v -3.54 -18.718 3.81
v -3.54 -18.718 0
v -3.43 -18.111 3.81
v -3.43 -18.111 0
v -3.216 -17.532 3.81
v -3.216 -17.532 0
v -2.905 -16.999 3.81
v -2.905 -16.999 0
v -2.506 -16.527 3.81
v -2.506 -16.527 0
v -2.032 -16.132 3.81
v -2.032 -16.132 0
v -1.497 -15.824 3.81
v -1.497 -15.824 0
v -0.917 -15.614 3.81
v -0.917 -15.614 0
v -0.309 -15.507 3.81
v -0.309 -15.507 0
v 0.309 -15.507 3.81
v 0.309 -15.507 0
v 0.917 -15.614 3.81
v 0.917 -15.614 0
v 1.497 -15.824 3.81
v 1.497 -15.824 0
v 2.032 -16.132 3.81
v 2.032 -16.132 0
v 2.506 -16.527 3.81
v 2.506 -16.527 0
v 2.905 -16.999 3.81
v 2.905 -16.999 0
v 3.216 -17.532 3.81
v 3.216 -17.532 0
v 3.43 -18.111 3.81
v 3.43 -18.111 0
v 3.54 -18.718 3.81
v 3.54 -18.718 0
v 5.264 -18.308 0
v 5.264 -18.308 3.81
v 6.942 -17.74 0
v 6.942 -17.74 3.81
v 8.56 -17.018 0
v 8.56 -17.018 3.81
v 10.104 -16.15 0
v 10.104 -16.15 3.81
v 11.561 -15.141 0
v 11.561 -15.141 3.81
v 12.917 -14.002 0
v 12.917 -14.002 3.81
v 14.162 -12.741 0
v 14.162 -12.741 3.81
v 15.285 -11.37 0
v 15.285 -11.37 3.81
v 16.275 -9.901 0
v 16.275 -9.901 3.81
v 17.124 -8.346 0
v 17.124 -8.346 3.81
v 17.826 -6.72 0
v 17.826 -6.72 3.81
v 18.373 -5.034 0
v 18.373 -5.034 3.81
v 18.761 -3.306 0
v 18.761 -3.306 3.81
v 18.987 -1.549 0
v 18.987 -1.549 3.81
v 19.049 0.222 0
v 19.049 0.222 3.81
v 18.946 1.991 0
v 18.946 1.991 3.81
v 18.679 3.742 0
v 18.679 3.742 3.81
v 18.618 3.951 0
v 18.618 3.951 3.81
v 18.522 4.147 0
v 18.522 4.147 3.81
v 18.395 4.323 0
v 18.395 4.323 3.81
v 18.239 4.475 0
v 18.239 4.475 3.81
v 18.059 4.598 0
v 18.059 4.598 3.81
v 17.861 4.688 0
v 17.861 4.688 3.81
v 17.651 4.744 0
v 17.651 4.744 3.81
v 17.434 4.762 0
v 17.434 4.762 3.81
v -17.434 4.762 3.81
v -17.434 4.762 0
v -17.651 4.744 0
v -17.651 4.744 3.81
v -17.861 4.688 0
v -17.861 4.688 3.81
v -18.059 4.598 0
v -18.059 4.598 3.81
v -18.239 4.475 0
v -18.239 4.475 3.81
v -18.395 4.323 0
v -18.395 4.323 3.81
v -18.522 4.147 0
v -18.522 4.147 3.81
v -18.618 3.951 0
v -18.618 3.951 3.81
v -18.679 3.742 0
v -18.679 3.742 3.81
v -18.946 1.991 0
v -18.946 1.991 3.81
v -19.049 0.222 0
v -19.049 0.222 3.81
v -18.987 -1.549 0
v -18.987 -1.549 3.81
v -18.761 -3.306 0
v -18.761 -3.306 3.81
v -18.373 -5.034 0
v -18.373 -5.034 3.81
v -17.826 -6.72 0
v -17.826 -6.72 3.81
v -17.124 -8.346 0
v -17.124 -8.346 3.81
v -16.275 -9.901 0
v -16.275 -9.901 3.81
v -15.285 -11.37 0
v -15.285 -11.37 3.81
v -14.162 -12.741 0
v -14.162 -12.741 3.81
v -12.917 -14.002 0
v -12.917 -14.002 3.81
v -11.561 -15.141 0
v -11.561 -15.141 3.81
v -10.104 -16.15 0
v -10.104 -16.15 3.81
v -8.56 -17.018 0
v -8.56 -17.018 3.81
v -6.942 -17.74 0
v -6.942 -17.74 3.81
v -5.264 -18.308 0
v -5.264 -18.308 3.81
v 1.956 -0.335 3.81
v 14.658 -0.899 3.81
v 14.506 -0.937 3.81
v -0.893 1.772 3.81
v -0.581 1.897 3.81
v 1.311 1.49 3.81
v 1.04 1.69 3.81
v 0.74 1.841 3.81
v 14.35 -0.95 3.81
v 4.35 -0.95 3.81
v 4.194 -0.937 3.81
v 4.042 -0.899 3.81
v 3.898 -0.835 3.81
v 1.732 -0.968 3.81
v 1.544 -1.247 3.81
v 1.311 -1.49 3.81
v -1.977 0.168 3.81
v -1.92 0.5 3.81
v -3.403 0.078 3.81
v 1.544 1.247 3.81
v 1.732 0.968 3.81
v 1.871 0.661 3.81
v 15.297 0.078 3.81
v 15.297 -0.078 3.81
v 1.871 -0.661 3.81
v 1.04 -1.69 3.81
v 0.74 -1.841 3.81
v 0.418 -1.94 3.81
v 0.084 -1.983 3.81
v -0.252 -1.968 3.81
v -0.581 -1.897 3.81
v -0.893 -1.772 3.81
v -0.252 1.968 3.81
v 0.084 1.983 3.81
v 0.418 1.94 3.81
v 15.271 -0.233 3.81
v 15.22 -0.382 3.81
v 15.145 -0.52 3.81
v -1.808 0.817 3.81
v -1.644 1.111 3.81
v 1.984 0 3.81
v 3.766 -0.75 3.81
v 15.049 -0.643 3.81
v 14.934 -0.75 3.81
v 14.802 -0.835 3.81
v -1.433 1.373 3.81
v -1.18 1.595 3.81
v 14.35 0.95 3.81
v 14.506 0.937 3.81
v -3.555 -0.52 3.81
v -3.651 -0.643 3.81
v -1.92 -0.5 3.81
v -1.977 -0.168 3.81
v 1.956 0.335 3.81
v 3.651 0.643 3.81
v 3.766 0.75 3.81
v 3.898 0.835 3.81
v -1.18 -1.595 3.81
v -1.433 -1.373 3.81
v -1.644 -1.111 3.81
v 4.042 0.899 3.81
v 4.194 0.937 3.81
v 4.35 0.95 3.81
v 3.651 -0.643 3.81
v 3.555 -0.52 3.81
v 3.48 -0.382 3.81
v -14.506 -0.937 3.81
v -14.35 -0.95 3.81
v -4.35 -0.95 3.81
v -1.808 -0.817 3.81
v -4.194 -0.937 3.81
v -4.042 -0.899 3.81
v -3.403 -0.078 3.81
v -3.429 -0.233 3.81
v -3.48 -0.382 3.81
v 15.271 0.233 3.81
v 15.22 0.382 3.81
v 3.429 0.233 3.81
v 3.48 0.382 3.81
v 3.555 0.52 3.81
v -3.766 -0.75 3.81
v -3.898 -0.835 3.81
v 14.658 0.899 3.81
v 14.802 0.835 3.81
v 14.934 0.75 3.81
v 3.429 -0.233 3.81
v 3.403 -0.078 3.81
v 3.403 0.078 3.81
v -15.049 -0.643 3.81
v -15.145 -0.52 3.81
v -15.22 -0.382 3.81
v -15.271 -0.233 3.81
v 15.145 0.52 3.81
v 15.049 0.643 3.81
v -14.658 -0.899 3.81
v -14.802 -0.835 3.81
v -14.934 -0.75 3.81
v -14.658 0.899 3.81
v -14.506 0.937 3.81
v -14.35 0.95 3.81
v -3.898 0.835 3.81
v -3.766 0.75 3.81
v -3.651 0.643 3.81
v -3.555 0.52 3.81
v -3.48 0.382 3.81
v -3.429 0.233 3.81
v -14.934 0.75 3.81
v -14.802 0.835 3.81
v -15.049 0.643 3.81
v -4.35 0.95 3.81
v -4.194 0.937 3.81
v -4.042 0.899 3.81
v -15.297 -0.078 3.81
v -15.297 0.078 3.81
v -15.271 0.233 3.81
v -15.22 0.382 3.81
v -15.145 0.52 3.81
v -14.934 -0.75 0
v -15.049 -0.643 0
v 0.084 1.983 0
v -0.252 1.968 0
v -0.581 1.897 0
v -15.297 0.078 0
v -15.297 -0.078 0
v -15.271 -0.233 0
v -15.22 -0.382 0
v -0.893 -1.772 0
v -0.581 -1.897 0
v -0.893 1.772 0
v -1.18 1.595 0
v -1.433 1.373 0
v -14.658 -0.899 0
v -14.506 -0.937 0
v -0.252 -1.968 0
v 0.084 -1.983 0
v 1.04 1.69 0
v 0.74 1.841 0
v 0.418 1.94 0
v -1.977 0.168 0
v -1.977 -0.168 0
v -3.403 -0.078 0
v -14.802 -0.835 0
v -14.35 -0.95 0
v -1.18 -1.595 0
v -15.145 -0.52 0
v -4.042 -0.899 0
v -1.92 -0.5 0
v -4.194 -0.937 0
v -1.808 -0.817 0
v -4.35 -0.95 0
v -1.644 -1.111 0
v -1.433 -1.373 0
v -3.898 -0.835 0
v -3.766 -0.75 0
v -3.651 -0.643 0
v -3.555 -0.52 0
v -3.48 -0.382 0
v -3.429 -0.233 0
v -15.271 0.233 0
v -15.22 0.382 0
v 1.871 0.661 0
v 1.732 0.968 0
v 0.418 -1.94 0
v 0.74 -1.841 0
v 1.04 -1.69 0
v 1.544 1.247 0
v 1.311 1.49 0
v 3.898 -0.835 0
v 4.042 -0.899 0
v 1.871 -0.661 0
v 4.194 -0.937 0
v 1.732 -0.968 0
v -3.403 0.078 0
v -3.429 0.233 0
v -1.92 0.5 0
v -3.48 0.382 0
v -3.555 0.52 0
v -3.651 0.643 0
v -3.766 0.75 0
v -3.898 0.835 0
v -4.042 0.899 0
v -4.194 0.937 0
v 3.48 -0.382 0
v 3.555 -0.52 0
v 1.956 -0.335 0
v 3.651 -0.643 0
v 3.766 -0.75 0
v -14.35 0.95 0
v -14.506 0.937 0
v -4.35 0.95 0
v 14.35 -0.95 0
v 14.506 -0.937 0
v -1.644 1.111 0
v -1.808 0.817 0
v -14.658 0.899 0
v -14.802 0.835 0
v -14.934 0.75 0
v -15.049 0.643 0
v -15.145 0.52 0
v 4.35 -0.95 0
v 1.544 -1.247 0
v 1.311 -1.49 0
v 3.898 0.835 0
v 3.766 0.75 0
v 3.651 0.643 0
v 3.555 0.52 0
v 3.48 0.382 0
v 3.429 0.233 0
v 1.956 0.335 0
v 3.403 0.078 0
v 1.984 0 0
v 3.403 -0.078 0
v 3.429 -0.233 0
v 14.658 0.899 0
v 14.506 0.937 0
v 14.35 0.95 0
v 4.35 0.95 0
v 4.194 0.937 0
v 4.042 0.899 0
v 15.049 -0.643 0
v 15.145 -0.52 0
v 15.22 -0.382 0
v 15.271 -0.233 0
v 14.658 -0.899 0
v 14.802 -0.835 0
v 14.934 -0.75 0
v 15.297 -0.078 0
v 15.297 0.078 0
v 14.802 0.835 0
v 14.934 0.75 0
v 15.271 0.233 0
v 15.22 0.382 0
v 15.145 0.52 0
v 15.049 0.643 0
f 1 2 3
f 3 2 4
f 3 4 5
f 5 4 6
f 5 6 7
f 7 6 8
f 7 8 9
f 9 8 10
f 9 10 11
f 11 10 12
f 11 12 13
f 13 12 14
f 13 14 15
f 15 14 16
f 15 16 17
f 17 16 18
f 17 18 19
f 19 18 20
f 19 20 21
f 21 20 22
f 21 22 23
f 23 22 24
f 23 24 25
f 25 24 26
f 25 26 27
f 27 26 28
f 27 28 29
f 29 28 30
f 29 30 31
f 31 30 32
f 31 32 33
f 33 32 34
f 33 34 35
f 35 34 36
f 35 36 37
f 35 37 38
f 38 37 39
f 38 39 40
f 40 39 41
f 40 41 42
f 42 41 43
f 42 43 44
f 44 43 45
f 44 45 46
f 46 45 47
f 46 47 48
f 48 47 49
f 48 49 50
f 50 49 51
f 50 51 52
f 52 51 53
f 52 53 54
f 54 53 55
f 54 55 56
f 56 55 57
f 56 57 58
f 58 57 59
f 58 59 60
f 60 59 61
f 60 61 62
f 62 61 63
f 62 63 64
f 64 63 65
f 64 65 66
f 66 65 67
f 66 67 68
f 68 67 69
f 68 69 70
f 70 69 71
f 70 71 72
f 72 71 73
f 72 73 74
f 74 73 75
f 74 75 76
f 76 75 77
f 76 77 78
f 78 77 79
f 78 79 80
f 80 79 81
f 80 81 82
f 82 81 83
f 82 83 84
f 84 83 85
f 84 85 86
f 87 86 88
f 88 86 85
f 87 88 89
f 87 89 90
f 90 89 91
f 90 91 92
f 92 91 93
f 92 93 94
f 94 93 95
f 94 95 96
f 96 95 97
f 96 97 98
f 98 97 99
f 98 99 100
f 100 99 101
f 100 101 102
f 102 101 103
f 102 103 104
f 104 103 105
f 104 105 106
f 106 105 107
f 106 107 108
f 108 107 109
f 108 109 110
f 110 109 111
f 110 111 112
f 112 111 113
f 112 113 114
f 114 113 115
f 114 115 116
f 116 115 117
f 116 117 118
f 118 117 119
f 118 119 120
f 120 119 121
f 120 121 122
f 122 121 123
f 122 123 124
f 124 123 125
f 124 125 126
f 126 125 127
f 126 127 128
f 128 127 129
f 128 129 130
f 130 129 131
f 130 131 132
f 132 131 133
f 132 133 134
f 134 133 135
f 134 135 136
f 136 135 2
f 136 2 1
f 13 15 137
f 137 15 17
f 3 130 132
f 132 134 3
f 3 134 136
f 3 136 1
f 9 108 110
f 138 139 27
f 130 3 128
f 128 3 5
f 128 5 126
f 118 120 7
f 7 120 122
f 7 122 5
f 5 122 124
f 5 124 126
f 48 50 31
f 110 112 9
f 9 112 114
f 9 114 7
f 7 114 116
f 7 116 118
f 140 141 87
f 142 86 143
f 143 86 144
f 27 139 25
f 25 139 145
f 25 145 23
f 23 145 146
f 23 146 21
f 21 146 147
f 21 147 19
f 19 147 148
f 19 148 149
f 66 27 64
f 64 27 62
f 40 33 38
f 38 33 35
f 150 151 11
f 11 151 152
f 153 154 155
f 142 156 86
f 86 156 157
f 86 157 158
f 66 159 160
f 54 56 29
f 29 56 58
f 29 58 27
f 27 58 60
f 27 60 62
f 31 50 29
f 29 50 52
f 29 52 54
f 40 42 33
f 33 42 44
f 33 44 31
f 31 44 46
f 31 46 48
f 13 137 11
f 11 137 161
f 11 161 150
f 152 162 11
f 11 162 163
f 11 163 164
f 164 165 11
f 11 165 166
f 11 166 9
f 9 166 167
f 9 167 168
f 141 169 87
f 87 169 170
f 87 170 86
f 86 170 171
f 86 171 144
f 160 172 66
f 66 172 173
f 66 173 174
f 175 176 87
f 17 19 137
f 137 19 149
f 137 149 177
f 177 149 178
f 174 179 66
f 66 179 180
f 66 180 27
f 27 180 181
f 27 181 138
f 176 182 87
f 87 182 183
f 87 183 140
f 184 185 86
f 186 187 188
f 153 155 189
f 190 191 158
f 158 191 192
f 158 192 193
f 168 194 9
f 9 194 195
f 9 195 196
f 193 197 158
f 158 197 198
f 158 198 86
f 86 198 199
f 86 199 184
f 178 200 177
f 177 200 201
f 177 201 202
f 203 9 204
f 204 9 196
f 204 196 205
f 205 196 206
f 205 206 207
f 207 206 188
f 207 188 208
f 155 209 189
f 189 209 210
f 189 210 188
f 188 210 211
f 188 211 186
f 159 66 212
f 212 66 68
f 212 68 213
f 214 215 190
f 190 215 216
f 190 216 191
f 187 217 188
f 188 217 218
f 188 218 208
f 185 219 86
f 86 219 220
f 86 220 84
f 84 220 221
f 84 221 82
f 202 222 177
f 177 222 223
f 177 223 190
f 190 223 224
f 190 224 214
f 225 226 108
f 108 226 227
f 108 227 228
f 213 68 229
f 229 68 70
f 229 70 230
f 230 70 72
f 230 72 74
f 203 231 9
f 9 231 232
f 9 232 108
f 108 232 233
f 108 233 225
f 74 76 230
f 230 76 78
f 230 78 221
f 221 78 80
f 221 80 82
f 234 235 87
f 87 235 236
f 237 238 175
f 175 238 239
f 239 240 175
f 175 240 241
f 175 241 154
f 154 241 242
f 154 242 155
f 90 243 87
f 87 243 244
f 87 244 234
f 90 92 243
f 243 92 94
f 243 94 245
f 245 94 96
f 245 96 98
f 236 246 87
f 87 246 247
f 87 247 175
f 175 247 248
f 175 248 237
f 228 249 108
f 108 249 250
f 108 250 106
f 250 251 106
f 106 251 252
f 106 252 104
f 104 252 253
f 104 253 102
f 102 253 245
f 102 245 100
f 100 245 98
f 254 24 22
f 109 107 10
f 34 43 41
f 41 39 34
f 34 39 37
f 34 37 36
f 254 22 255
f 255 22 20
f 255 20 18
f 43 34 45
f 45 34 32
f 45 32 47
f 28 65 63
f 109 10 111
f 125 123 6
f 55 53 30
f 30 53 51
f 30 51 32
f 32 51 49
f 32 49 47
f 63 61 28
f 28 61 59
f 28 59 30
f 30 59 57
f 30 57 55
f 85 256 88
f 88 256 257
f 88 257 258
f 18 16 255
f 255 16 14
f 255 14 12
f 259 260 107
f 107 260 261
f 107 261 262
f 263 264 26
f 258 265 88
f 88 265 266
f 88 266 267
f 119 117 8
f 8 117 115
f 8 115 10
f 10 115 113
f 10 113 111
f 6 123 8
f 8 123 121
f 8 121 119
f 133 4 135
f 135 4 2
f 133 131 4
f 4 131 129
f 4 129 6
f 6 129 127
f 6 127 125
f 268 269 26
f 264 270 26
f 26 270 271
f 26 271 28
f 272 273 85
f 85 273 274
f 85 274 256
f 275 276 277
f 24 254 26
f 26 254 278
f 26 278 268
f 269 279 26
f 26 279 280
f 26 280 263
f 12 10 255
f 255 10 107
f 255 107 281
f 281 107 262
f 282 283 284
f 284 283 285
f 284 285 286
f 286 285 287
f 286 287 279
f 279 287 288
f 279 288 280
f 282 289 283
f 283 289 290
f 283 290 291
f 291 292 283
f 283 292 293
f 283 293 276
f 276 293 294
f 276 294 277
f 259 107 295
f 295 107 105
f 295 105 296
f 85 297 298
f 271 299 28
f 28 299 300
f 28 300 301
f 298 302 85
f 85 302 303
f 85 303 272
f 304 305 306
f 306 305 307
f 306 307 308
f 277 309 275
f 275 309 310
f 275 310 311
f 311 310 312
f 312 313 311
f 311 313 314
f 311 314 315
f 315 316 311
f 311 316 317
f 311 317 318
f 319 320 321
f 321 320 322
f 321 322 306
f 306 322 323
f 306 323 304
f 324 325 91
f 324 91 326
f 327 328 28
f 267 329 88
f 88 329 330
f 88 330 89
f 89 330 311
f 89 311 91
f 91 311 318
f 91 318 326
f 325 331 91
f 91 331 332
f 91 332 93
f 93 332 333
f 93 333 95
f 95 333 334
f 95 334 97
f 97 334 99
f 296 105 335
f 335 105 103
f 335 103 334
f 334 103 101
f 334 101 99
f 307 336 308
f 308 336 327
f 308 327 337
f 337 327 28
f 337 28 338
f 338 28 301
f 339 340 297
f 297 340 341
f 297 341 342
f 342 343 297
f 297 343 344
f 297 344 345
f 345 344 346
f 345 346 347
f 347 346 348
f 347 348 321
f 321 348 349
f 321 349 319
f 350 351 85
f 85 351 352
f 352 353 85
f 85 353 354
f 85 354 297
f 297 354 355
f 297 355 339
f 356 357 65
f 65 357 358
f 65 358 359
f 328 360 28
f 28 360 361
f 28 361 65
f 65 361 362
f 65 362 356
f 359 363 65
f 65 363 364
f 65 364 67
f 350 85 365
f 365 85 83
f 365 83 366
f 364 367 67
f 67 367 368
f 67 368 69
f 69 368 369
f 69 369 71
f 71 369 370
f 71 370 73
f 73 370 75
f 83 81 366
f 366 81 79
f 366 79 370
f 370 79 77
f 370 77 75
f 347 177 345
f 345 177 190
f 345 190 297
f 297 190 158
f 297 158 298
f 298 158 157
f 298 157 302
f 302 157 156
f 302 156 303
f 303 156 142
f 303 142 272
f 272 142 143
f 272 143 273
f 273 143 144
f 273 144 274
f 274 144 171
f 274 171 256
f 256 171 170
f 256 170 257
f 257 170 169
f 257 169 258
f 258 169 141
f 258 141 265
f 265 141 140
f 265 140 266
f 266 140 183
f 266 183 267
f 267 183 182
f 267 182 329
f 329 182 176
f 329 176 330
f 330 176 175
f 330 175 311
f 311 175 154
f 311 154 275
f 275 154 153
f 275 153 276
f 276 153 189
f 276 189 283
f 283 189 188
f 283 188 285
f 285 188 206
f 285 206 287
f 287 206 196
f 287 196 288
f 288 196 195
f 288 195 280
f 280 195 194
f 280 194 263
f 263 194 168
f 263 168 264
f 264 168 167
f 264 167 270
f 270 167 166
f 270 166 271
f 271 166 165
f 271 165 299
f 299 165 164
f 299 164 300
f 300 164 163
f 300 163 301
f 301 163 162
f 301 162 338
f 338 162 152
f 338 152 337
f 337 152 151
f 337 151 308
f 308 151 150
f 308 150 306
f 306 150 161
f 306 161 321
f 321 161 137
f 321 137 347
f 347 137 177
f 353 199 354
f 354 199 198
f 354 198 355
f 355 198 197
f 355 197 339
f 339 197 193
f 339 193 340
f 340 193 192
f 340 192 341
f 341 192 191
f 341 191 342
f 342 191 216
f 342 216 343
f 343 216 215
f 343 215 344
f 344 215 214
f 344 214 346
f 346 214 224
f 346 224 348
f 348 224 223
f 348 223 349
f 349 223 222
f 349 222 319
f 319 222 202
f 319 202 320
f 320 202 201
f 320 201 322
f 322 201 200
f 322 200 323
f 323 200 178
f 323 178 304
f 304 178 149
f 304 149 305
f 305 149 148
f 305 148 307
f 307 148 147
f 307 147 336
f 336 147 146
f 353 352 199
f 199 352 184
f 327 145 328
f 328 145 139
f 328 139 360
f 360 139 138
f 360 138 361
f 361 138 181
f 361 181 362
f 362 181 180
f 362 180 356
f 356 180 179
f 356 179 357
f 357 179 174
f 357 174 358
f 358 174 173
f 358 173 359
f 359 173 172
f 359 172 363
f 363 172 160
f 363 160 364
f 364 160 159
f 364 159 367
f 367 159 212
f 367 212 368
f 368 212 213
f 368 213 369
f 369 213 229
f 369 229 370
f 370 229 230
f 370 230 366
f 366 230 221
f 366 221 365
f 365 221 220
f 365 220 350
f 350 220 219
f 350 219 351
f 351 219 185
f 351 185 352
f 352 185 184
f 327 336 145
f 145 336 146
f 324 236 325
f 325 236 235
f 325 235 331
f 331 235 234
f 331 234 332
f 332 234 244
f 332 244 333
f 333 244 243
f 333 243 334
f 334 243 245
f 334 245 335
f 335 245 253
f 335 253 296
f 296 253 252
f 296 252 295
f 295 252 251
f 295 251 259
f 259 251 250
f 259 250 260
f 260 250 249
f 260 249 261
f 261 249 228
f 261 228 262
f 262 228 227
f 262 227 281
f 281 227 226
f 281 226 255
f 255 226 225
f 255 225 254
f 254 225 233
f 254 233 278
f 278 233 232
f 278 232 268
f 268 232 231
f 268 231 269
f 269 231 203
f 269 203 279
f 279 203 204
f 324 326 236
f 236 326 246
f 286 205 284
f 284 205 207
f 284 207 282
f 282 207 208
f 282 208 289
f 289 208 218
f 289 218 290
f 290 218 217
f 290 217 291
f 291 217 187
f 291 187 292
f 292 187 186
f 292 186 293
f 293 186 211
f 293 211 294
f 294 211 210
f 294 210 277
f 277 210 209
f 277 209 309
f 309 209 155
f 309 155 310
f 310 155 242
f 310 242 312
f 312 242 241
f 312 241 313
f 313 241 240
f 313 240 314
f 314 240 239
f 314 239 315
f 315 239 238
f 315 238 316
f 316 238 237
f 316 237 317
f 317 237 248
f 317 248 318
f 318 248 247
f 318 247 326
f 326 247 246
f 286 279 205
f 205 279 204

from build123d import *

# Parameters (mm, degrees)
BOSS_EXTRUDE1_DEPTH = 3.81
SKETCH4_R           = 1.984375
CUT_EXTRUDE2_DEPTH  = 27.977511323


with BuildPart() as part:
    # Sketch1 → Boss-Extrude1 (new body)
    with BuildSketch(Plane.XY):
        with BuildLine():
            Line((17.43361247, 4.7625), (-17.43361247, 4.7625))
            ThreePointArc((-17.43361247, 4.7625), (-18.238621898, 4.474772784), (-18.678870503, 3.741964286))
            ThreePointArc((-18.678870503, 3.741964286), (-15.796789426, -10.647250529), (-3.540477767, -18.718106667))
            ThreePointArc((-3.540477767, -18.718106667), (0, -15.494), (3.540477767, -18.718106667))
            ThreePointArc((3.540477767, -18.718106667), (15.796789426, -10.647250529), (18.678870503, 3.741964286))
            ThreePointArc((18.678870503, 3.741964286), (18.238621898, 4.474772784), (17.43361247, 4.7625))
        make_face()
    extrude(amount=BOSS_EXTRUDE1_DEPTH)

    # Sketch4 → Cut-Extrude2 (cut, through all)
    with BuildSketch(Plane.XY.offset(3.81)):
        Circle(SKETCH4_R)
        with BuildLine():
            Line((-14.350000002, 0.95), (-4.35, 0.95))
            ThreePointArc((-4.35, 0.95), (-3.4, 0), (-4.35, -0.95))
            Line((-4.35, -0.95), (-14.350000002, -0.95))
            ThreePointArc((-14.350000002, -0.95), (-15.300000002, 0), (-14.350000002, 0.95))
        make_face()
        with BuildLine():
            Line((4.35, 0.95), (14.350000002, 0.95))
            ThreePointArc((14.350000002, 0.95), (15.300000002, 0), (14.350000002, -0.95))
            Line((14.350000002, -0.95), (4.35, -0.95))
            ThreePointArc((4.35, -0.95), (3.4, 0), (4.35, 0.95))
        make_face()
    extrude(amount=-CUT_EXTRUDE2_DEPTH, mode=Mode.SUBTRACT)


solid = part.part
